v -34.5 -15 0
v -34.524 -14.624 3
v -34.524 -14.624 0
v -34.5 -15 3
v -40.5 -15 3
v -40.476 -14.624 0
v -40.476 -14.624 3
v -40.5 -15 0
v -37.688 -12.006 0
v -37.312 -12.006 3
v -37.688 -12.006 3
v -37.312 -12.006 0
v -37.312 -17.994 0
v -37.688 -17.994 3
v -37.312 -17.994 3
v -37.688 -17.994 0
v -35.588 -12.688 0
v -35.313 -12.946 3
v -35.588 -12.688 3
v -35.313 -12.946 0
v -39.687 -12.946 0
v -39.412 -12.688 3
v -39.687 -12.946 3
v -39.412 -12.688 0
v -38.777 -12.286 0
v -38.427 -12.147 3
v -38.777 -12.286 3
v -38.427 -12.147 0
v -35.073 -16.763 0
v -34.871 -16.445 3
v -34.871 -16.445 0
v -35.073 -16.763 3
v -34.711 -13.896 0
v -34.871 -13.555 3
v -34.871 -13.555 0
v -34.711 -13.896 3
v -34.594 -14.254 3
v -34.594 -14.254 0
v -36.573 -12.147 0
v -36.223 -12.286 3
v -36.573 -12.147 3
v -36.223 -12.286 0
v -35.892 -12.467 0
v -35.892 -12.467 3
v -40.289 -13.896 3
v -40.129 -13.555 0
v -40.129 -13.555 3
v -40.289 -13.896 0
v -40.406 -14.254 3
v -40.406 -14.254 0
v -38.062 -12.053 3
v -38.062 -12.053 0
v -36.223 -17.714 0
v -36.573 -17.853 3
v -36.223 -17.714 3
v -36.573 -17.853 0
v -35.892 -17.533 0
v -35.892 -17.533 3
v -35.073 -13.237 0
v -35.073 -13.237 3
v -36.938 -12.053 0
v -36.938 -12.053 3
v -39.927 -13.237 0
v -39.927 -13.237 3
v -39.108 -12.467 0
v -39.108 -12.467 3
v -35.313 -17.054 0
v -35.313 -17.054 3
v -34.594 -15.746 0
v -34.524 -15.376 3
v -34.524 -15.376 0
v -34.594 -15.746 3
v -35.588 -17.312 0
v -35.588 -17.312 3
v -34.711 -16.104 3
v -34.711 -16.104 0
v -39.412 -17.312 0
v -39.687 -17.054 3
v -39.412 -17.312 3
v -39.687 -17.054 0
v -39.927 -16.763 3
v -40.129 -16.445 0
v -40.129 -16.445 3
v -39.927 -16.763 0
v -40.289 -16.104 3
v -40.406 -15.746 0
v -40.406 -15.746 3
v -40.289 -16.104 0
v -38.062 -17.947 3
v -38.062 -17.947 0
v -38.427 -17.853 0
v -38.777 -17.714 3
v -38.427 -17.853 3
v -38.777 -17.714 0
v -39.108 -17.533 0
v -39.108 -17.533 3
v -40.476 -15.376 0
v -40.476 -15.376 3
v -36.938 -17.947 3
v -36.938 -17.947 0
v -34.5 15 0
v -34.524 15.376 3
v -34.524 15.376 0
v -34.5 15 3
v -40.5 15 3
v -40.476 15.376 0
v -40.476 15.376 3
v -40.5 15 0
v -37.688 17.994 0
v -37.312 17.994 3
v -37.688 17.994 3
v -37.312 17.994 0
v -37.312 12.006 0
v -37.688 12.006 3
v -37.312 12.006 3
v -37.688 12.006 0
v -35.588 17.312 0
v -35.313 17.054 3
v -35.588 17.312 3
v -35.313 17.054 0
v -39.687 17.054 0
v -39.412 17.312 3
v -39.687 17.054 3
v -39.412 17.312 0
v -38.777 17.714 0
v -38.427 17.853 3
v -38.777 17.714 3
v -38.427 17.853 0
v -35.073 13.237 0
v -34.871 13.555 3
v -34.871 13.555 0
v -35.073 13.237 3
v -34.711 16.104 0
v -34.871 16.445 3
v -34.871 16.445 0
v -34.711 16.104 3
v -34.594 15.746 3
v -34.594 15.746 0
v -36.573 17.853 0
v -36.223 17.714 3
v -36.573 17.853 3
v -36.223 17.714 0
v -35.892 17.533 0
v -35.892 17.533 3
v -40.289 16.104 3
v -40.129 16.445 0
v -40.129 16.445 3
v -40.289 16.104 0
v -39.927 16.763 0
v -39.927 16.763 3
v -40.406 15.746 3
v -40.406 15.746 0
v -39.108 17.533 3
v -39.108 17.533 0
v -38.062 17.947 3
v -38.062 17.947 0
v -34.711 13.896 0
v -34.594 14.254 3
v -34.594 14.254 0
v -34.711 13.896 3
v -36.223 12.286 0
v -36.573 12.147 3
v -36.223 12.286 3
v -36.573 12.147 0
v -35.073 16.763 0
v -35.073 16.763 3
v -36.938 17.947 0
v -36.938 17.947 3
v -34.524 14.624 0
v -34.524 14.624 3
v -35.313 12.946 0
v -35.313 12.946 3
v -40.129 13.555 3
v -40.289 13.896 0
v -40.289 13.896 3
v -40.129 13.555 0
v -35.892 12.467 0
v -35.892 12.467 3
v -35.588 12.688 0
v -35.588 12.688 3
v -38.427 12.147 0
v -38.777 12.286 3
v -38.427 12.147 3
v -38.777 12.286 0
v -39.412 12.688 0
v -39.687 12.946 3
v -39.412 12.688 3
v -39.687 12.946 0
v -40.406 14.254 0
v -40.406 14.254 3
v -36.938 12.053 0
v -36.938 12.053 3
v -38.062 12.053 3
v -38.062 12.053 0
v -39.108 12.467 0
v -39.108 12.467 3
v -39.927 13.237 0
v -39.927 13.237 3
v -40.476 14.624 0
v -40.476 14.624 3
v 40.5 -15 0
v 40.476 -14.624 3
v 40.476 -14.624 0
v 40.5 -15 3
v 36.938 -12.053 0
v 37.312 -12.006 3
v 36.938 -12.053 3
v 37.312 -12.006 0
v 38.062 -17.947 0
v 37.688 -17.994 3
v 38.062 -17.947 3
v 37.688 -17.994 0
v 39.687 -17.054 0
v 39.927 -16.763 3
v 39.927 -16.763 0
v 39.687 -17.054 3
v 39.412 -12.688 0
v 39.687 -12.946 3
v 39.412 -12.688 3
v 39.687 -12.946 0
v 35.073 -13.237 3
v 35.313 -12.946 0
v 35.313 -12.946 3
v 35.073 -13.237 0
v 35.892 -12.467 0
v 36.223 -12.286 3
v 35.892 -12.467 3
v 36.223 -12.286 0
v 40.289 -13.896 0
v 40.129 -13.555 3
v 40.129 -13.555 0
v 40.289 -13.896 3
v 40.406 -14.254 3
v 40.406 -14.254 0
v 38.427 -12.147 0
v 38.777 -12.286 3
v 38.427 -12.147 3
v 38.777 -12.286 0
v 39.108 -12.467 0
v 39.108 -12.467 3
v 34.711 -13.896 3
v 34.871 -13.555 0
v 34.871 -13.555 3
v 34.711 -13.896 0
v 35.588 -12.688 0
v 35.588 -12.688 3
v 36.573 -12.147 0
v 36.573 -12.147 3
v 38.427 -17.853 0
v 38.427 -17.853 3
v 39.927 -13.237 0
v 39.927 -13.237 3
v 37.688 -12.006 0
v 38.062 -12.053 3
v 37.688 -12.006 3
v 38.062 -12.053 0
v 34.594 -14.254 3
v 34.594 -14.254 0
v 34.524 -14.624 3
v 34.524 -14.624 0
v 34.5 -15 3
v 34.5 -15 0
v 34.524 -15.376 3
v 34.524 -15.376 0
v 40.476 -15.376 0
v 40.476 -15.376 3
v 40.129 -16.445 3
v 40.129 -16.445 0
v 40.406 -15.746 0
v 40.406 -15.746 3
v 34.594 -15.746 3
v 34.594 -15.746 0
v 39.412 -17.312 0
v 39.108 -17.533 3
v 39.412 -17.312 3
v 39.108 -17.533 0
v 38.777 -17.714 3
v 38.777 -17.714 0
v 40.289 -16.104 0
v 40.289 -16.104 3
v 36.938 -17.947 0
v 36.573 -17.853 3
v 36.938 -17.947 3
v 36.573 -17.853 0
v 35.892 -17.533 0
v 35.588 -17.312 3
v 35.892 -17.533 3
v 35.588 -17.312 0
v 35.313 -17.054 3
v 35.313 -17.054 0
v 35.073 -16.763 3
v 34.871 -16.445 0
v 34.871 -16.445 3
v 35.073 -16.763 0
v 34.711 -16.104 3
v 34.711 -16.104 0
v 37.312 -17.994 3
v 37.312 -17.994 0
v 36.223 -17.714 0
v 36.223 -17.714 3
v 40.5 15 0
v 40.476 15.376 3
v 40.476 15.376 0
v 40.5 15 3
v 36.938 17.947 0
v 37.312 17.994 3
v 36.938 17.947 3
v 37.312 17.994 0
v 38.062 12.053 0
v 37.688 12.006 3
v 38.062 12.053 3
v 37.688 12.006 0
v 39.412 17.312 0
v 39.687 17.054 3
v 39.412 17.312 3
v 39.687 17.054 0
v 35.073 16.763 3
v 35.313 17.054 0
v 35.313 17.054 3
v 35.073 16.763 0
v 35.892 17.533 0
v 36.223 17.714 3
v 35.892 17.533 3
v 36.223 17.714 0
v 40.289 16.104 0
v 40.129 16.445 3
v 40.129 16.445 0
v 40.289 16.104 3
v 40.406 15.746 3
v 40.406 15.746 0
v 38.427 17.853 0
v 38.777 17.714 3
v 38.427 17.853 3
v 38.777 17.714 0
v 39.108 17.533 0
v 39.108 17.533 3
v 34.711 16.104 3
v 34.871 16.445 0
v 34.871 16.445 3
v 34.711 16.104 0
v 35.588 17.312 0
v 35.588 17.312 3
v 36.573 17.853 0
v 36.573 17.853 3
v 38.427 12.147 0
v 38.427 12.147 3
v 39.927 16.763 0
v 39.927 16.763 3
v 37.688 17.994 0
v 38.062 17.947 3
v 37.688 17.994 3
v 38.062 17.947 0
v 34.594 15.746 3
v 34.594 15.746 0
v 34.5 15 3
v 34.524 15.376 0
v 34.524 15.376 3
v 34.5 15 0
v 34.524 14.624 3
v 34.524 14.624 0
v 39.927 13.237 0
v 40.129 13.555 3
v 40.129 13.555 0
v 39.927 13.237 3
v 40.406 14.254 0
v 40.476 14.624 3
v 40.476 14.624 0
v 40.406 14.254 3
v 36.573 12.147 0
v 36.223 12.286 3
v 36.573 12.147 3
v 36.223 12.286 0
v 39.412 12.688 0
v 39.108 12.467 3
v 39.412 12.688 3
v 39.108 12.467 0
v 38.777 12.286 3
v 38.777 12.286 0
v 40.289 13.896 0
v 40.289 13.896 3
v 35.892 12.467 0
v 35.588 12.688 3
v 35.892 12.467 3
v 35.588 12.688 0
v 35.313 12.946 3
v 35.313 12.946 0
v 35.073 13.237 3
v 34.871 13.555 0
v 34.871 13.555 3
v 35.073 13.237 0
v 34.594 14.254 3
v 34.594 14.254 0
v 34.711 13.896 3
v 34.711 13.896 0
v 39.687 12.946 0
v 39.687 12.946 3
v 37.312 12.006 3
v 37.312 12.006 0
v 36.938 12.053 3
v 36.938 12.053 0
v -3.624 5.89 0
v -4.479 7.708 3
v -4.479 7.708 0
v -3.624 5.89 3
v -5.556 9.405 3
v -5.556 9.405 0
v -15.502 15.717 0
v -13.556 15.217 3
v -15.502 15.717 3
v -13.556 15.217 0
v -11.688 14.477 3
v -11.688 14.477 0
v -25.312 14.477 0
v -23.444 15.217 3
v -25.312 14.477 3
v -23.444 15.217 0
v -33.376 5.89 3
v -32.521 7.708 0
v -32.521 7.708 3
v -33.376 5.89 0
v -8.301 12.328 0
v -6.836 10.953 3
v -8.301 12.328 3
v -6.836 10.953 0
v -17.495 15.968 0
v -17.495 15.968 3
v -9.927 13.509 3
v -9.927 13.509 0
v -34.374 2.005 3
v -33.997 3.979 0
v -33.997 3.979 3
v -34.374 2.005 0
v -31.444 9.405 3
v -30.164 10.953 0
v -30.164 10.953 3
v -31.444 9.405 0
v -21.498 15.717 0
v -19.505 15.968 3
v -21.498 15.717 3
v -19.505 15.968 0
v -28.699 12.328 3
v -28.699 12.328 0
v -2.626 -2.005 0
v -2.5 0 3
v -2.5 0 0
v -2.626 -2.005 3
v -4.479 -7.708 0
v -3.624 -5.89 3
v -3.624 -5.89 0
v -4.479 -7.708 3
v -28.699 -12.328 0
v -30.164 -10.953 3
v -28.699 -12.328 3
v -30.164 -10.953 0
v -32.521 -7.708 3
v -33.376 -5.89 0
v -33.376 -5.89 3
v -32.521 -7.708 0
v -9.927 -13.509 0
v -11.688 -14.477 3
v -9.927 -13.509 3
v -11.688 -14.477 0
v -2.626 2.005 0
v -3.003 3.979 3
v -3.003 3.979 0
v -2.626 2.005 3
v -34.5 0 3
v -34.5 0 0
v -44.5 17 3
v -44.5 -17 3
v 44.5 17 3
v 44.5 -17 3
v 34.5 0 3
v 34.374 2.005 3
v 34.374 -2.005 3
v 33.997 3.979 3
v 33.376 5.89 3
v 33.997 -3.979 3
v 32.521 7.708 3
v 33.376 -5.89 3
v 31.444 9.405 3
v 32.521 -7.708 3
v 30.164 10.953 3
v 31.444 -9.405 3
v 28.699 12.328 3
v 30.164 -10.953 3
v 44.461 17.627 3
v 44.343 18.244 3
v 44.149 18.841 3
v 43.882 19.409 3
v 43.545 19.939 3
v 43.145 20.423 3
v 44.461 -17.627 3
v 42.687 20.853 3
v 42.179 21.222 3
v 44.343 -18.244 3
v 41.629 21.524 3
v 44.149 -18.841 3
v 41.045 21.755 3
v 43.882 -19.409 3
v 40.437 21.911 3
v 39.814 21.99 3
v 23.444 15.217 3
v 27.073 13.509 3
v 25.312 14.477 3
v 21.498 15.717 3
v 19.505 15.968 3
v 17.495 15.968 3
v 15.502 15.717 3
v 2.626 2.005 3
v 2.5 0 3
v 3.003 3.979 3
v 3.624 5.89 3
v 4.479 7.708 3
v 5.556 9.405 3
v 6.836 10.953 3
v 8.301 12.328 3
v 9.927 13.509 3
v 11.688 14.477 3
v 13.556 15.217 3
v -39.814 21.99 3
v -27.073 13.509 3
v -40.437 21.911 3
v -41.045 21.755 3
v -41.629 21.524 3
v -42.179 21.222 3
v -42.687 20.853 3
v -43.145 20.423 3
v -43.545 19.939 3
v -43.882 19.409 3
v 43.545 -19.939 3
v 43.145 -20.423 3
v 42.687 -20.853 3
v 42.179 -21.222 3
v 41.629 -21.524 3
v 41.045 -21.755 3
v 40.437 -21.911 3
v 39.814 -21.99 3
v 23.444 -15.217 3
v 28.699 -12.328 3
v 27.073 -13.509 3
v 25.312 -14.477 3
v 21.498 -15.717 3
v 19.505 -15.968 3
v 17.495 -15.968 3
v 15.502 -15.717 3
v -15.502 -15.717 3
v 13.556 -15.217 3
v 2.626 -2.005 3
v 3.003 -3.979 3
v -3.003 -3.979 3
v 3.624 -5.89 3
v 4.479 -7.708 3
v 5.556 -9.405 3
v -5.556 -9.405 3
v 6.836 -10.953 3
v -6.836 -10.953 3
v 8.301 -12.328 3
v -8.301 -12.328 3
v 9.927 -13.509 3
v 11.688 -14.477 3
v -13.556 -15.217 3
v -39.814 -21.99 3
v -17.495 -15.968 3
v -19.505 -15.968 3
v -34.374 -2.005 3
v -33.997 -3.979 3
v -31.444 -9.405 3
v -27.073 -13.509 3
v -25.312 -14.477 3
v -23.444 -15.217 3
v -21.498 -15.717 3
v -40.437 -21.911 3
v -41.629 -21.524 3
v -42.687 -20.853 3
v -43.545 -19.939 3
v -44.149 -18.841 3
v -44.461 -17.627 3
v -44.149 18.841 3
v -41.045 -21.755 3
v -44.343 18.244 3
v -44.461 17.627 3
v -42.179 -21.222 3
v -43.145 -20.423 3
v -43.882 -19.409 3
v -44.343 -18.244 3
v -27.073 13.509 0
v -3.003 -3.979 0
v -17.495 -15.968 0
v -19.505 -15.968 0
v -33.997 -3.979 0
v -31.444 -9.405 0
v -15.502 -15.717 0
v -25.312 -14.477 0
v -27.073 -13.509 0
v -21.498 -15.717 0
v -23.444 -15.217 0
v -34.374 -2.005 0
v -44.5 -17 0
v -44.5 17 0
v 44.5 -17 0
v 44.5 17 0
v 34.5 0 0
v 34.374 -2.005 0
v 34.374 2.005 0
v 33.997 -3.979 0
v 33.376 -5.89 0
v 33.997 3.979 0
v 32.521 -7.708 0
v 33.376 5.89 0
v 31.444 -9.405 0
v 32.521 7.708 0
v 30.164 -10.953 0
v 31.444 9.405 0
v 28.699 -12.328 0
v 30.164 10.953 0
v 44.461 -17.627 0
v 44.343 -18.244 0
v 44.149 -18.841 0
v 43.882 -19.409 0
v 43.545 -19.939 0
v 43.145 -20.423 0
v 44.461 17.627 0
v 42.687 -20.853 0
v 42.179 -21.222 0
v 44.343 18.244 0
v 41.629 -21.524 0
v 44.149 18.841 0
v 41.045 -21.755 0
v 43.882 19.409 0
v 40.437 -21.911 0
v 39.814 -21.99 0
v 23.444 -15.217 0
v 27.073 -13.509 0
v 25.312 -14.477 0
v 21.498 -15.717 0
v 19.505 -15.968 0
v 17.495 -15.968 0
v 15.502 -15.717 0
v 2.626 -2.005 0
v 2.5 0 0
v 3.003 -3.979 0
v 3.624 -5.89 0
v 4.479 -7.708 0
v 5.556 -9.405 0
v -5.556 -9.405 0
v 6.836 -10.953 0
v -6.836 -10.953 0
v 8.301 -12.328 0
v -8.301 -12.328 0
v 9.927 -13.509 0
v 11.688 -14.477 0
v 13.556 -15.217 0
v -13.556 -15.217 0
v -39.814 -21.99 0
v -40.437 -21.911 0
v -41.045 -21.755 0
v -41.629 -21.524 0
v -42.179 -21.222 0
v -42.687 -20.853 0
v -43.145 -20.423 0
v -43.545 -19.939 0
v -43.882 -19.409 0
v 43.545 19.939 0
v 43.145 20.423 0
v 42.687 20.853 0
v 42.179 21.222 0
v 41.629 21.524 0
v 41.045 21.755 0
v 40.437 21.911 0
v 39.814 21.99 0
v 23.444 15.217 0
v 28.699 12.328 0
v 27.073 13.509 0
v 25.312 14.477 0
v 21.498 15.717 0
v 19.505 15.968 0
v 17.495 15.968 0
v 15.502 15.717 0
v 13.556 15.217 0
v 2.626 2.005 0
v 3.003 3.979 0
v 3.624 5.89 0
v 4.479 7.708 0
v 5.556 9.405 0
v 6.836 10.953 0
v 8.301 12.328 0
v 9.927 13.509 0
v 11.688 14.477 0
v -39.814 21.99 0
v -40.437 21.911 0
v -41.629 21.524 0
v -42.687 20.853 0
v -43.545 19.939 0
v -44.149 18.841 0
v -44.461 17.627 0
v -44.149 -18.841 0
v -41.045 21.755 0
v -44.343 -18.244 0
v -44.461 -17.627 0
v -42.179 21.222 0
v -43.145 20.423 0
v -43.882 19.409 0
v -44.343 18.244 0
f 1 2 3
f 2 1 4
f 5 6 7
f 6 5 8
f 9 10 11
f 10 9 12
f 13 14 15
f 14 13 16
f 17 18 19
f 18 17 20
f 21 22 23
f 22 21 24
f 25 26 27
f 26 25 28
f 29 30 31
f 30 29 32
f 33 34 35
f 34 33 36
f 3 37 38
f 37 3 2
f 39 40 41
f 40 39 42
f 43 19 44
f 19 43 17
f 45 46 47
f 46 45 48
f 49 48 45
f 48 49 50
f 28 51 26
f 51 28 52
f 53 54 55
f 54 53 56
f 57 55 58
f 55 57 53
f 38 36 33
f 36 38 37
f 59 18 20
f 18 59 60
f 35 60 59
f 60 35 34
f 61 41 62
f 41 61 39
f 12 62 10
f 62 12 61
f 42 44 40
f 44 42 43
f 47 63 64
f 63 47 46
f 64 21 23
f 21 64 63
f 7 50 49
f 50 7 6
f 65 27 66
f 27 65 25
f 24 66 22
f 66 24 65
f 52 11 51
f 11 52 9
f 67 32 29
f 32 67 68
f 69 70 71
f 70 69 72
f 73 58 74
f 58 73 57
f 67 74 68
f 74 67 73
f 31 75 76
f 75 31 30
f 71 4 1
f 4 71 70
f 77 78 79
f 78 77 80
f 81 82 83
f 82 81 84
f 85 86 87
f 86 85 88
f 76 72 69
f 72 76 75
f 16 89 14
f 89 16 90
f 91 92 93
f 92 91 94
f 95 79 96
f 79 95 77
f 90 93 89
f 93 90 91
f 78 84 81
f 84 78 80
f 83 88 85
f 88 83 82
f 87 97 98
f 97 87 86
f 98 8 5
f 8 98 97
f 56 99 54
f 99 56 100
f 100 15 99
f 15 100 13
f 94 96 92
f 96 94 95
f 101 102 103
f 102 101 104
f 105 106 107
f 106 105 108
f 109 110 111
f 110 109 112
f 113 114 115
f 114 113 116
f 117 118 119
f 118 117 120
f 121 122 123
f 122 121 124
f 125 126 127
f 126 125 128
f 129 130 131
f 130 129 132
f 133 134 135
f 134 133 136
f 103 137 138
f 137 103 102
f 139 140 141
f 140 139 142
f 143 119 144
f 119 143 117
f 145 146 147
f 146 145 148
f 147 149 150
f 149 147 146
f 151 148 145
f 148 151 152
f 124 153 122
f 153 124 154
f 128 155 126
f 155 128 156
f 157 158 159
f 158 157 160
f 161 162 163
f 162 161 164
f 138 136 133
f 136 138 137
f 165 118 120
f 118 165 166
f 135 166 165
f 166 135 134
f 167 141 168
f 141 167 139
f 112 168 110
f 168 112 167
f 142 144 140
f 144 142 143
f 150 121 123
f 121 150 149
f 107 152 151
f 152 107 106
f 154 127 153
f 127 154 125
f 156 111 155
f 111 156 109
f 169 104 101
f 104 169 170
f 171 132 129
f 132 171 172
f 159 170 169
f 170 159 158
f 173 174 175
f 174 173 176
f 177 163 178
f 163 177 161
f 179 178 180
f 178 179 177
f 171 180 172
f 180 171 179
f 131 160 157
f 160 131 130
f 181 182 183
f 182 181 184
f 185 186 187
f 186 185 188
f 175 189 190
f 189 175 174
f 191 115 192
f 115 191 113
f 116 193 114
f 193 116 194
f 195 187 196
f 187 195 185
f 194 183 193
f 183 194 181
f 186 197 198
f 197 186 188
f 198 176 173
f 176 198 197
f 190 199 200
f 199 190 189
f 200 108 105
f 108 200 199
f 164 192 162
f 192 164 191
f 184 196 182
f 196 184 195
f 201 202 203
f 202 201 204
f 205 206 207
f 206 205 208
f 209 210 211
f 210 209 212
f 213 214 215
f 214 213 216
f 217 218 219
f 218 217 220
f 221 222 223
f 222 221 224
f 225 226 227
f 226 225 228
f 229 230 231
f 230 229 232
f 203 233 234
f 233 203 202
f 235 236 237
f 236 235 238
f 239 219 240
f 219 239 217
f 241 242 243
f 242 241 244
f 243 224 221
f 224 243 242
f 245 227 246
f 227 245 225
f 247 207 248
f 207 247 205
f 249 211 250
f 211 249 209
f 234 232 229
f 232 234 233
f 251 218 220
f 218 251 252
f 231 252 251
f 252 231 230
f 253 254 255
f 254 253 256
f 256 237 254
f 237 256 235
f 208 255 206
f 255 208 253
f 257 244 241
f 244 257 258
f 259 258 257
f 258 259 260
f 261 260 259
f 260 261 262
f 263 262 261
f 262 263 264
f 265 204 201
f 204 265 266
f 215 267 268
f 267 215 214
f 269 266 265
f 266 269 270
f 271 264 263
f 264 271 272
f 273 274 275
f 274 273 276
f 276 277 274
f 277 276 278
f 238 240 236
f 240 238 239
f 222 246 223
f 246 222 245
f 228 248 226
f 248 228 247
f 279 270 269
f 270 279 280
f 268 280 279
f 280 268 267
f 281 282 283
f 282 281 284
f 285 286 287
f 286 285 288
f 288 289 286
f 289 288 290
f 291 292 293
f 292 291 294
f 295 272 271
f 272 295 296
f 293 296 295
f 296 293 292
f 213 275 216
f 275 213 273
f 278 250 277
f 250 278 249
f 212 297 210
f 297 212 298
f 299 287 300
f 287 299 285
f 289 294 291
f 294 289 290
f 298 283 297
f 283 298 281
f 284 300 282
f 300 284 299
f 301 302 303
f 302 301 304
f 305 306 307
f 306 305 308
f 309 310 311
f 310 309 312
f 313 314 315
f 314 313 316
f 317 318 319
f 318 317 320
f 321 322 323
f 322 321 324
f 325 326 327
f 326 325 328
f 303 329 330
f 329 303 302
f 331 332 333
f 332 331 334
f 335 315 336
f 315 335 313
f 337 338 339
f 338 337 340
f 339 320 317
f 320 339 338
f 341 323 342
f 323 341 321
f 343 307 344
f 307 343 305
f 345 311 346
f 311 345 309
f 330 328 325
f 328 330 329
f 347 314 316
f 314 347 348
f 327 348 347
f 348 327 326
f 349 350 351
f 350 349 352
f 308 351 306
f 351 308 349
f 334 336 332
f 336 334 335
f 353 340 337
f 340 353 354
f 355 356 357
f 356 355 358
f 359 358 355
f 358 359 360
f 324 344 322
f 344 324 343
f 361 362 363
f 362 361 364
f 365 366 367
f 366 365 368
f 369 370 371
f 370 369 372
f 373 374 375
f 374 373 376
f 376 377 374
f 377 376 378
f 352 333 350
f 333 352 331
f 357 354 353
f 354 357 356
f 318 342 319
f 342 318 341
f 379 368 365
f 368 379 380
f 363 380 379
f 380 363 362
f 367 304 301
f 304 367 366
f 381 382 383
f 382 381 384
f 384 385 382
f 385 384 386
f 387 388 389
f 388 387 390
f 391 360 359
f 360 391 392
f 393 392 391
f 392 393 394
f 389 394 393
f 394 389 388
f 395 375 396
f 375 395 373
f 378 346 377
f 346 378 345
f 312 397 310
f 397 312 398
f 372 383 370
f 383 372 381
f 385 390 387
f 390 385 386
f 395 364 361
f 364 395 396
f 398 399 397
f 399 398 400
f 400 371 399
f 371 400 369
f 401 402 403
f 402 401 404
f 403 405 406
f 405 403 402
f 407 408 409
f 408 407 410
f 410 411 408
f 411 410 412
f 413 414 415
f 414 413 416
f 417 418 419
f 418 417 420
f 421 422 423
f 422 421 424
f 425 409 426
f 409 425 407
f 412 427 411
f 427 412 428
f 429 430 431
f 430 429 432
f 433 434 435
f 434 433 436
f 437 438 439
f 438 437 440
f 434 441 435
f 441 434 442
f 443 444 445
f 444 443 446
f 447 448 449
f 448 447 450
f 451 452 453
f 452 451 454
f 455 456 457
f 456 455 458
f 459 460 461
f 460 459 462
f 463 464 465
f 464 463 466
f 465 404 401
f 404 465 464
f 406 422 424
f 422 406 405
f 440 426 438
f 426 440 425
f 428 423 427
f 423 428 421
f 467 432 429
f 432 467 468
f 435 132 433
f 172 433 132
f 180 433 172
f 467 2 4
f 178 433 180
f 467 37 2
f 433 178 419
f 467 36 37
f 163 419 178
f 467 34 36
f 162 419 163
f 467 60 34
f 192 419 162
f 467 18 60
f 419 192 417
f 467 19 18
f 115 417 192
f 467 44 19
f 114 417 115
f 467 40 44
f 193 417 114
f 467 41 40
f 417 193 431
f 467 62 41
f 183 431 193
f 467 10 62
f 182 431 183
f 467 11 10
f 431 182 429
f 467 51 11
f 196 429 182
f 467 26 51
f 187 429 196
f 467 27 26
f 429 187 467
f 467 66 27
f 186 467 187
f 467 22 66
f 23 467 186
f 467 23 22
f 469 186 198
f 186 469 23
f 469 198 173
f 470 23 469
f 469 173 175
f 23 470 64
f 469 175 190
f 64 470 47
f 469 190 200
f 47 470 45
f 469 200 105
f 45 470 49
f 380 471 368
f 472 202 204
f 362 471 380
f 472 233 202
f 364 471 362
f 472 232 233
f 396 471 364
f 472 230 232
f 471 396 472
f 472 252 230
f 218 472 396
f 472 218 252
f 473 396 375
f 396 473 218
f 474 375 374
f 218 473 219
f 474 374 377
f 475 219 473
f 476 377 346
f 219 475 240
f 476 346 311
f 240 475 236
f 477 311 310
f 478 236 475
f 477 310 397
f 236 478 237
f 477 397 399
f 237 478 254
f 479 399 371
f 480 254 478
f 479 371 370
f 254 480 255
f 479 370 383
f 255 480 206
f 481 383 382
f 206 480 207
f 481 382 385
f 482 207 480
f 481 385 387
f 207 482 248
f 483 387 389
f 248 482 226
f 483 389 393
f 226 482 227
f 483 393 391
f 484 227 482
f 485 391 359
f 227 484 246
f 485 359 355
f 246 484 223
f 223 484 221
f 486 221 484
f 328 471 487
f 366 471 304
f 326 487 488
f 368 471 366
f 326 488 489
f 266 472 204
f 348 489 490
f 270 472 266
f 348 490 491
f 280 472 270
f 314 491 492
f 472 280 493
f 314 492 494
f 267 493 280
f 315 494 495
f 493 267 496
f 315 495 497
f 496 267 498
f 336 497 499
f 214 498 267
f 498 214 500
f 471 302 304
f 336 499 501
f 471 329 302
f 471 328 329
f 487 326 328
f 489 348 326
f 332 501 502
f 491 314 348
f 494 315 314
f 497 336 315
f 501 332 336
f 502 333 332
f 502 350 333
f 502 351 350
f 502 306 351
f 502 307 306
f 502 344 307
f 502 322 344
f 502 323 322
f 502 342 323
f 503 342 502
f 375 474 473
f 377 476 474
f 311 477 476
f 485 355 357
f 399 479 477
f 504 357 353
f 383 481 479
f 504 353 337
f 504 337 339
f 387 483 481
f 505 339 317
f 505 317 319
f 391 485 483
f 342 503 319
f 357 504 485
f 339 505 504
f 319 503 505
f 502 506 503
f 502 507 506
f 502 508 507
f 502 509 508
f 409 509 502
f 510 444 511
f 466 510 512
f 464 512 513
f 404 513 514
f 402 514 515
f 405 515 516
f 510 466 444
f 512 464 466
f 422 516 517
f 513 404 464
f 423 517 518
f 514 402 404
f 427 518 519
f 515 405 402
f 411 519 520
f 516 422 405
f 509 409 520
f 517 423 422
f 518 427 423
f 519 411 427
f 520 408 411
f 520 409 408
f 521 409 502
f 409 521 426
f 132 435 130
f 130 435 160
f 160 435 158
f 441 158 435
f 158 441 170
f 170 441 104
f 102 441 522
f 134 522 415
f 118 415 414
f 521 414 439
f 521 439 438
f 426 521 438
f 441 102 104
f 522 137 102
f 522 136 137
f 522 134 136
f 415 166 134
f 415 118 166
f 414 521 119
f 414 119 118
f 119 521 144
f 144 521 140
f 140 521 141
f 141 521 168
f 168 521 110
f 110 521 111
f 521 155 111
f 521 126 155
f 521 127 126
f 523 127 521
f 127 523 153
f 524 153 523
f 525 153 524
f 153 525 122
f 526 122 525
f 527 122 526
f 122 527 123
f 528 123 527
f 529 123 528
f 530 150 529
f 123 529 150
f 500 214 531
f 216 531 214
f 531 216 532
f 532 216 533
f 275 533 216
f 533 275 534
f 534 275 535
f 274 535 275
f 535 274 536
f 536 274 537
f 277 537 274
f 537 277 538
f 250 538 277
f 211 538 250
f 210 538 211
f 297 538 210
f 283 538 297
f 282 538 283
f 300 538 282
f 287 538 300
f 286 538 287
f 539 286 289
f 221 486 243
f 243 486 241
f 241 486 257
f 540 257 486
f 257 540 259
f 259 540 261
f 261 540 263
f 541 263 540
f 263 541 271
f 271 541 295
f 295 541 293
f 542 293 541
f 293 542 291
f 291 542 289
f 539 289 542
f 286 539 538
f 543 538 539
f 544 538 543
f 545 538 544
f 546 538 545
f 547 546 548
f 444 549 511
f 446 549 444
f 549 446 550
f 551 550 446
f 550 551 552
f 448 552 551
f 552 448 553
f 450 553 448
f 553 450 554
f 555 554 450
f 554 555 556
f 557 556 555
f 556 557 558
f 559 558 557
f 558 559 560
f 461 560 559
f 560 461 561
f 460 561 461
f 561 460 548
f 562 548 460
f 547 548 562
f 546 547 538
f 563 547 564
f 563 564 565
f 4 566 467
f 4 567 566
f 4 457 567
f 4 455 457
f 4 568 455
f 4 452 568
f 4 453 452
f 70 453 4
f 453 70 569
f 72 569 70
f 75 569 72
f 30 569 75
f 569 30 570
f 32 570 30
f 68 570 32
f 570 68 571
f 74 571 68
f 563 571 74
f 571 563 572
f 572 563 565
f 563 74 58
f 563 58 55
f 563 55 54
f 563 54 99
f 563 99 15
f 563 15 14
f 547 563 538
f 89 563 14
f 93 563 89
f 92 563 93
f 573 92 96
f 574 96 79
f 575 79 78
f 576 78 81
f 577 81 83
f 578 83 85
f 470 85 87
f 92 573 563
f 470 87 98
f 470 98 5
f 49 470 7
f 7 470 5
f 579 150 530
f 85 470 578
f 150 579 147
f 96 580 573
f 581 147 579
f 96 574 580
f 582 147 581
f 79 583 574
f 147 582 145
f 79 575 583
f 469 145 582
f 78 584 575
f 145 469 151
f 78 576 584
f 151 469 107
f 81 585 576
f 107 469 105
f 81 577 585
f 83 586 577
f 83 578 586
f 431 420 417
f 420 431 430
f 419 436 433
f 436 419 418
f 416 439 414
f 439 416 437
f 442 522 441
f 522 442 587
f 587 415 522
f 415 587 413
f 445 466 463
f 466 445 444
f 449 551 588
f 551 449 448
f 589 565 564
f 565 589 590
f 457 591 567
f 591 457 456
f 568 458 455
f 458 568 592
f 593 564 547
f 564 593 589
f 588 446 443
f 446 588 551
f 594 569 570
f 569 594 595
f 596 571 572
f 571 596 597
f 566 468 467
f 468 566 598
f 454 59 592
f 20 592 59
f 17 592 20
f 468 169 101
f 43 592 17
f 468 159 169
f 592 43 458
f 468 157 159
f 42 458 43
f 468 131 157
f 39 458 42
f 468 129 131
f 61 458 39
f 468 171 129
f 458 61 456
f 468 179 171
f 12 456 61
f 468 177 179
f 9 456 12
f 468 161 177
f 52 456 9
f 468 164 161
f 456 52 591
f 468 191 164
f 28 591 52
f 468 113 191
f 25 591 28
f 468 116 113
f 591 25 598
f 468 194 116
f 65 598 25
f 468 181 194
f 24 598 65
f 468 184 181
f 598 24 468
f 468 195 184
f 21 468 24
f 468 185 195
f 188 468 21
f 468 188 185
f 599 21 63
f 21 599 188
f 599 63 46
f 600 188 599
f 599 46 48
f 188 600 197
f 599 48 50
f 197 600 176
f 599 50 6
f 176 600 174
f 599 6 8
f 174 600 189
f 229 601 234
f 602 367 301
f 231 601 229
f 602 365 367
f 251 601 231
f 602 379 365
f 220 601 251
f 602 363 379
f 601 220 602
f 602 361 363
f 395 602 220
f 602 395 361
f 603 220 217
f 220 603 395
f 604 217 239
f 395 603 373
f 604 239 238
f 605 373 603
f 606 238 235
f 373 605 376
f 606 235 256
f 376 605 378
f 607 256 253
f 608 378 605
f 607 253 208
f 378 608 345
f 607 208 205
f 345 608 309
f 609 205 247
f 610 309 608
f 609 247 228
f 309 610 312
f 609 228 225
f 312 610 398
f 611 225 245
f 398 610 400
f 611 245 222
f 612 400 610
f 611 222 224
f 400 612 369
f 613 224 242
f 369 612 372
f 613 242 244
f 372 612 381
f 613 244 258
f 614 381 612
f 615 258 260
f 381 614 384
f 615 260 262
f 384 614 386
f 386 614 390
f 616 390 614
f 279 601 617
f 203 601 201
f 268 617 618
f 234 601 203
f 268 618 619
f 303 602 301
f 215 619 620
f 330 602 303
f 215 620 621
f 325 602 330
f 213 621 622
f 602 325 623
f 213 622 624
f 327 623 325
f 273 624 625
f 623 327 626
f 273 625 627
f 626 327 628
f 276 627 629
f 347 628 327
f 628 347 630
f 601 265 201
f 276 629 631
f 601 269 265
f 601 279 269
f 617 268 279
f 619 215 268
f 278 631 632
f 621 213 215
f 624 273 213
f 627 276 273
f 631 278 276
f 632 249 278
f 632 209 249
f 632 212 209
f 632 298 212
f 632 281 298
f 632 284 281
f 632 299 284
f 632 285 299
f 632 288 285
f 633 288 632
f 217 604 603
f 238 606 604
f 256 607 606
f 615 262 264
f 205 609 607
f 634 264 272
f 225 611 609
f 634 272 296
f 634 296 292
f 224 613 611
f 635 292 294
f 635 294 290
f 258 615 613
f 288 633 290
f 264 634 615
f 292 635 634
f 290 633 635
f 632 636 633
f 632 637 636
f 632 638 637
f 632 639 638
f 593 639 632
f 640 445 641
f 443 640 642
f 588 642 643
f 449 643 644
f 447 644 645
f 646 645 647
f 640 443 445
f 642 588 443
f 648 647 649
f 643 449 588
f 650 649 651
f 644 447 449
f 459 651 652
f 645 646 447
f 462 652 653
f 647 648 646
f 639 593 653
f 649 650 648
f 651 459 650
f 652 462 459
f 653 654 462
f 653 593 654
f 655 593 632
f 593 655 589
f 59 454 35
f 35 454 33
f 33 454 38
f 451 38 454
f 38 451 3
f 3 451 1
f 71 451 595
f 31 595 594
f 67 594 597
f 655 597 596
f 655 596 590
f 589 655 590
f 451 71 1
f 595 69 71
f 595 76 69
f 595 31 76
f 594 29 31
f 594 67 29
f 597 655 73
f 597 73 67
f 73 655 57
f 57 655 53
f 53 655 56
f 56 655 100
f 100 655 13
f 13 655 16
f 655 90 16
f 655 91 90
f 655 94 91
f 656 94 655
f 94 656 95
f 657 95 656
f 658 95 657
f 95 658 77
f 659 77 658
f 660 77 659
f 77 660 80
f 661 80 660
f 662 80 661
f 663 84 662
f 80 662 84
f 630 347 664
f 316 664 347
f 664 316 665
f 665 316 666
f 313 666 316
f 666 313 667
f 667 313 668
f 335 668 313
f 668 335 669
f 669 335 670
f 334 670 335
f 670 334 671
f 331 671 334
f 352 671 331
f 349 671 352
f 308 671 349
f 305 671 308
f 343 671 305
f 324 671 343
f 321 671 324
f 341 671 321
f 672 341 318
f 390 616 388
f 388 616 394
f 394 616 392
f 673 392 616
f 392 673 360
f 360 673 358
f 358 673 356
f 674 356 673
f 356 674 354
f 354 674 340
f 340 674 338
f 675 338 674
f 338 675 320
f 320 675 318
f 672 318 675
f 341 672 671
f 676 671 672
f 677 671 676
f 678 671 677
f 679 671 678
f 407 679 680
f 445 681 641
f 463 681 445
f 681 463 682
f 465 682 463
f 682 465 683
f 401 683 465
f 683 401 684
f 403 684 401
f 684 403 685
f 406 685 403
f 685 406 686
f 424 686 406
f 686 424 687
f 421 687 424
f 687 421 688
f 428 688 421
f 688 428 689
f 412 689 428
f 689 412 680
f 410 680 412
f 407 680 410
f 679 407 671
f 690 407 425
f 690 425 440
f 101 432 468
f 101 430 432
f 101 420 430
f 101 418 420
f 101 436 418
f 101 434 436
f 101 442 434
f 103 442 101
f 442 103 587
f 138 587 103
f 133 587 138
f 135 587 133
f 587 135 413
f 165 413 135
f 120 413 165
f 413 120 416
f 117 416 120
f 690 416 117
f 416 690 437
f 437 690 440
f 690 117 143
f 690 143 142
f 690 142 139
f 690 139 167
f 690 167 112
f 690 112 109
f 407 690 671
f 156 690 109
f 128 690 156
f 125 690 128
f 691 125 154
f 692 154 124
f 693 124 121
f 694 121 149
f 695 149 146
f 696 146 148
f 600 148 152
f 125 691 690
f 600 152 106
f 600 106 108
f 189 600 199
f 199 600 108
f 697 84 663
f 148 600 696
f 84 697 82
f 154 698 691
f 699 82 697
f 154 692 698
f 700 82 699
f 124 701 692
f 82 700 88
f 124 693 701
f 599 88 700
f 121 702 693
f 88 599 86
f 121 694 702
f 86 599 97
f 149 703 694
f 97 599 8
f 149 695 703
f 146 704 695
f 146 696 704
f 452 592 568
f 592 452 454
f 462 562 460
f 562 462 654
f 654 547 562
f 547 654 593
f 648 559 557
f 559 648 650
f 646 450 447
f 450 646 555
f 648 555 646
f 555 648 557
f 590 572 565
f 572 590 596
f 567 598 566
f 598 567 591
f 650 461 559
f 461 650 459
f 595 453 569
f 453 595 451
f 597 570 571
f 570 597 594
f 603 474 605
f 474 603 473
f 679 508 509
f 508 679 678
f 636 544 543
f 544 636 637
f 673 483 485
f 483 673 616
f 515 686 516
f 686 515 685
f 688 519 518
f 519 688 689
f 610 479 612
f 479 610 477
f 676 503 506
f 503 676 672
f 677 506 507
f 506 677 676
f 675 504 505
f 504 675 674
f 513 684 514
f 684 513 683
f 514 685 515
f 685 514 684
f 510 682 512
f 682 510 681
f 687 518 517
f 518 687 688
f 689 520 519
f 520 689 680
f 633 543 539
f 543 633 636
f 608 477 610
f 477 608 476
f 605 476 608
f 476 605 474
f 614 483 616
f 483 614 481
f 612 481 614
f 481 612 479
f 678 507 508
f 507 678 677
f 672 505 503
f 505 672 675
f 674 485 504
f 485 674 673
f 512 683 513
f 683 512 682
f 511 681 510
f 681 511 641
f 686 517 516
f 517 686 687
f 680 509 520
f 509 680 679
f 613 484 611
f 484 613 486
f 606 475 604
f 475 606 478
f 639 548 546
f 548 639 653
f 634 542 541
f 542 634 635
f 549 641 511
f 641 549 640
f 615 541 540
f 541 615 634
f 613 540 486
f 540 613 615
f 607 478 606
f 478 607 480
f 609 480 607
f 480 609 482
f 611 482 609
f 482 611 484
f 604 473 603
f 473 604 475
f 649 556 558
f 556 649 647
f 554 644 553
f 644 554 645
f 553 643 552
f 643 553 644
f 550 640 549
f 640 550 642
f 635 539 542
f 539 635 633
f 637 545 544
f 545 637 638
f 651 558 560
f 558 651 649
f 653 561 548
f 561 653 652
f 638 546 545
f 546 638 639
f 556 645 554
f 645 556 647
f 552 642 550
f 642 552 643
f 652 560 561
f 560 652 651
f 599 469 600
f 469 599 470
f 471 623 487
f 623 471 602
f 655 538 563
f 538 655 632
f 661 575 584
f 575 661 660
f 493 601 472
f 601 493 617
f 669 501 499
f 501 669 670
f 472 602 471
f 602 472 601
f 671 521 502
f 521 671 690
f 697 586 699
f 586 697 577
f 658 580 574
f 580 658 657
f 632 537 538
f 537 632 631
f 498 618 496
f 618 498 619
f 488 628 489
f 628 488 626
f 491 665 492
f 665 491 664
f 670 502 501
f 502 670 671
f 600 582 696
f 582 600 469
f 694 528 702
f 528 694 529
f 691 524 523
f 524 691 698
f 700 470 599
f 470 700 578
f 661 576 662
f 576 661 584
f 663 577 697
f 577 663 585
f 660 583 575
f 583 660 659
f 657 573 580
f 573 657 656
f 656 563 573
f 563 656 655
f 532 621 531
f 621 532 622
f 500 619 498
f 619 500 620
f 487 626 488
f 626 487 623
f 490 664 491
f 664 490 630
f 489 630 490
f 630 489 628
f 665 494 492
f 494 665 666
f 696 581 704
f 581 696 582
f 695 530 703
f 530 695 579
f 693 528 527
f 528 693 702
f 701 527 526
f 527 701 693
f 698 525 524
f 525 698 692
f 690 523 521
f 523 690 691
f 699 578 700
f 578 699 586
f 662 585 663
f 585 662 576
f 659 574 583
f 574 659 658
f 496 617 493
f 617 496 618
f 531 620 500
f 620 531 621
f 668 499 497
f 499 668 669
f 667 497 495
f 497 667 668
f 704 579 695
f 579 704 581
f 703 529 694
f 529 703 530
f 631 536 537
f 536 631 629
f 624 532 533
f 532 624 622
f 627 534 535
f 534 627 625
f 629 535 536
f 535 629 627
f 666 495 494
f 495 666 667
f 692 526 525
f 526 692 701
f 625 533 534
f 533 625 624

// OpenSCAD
$fn = 50;


difference() {
	union() {
		hull() {
			translate(v = [-39.5000000000, 17.0000000000, 0]) {
				cylinder(h = 3, r = 5);
			}
			translate(v = [39.5000000000, 17.0000000000, 0]) {
				cylinder(h = 3, r = 5);
			}
			translate(v = [-39.5000000000, -17.0000000000, 0]) {
				cylinder(h = 3, r = 5);
			}
			translate(v = [39.5000000000, -17.0000000000, 0]) {
				cylinder(h = 3, r = 5);
			}
		}
	}
	union() {
		#translate(v = [-37.5000000000, -15.0000000000, -100.0000000000]) {
			cylinder(h = 200, r = 3.0000000000);
		}
		#translate(v = [-37.5000000000, 15.0000000000, -100.0000000000]) {
			cylinder(h = 200, r = 3.0000000000);
		}
		#translate(v = [37.5000000000, -15.0000000000, -100.0000000000]) {
			cylinder(h = 200, r = 3.0000000000);
		}
		#translate(v = [37.5000000000, 15.0000000000, -100.0000000000]) {
			cylinder(h = 200, r = 3.0000000000);
		}
		#translate(v = [-18.5000000000, 0, 0]) {
			cylinder(h = 3, r = 16.0000000000);
		}
		#translate(v = [18.5000000000, 0, 0]) {
			cylinder(h = 3, r = 16.0000000000);
		}
	}
}
